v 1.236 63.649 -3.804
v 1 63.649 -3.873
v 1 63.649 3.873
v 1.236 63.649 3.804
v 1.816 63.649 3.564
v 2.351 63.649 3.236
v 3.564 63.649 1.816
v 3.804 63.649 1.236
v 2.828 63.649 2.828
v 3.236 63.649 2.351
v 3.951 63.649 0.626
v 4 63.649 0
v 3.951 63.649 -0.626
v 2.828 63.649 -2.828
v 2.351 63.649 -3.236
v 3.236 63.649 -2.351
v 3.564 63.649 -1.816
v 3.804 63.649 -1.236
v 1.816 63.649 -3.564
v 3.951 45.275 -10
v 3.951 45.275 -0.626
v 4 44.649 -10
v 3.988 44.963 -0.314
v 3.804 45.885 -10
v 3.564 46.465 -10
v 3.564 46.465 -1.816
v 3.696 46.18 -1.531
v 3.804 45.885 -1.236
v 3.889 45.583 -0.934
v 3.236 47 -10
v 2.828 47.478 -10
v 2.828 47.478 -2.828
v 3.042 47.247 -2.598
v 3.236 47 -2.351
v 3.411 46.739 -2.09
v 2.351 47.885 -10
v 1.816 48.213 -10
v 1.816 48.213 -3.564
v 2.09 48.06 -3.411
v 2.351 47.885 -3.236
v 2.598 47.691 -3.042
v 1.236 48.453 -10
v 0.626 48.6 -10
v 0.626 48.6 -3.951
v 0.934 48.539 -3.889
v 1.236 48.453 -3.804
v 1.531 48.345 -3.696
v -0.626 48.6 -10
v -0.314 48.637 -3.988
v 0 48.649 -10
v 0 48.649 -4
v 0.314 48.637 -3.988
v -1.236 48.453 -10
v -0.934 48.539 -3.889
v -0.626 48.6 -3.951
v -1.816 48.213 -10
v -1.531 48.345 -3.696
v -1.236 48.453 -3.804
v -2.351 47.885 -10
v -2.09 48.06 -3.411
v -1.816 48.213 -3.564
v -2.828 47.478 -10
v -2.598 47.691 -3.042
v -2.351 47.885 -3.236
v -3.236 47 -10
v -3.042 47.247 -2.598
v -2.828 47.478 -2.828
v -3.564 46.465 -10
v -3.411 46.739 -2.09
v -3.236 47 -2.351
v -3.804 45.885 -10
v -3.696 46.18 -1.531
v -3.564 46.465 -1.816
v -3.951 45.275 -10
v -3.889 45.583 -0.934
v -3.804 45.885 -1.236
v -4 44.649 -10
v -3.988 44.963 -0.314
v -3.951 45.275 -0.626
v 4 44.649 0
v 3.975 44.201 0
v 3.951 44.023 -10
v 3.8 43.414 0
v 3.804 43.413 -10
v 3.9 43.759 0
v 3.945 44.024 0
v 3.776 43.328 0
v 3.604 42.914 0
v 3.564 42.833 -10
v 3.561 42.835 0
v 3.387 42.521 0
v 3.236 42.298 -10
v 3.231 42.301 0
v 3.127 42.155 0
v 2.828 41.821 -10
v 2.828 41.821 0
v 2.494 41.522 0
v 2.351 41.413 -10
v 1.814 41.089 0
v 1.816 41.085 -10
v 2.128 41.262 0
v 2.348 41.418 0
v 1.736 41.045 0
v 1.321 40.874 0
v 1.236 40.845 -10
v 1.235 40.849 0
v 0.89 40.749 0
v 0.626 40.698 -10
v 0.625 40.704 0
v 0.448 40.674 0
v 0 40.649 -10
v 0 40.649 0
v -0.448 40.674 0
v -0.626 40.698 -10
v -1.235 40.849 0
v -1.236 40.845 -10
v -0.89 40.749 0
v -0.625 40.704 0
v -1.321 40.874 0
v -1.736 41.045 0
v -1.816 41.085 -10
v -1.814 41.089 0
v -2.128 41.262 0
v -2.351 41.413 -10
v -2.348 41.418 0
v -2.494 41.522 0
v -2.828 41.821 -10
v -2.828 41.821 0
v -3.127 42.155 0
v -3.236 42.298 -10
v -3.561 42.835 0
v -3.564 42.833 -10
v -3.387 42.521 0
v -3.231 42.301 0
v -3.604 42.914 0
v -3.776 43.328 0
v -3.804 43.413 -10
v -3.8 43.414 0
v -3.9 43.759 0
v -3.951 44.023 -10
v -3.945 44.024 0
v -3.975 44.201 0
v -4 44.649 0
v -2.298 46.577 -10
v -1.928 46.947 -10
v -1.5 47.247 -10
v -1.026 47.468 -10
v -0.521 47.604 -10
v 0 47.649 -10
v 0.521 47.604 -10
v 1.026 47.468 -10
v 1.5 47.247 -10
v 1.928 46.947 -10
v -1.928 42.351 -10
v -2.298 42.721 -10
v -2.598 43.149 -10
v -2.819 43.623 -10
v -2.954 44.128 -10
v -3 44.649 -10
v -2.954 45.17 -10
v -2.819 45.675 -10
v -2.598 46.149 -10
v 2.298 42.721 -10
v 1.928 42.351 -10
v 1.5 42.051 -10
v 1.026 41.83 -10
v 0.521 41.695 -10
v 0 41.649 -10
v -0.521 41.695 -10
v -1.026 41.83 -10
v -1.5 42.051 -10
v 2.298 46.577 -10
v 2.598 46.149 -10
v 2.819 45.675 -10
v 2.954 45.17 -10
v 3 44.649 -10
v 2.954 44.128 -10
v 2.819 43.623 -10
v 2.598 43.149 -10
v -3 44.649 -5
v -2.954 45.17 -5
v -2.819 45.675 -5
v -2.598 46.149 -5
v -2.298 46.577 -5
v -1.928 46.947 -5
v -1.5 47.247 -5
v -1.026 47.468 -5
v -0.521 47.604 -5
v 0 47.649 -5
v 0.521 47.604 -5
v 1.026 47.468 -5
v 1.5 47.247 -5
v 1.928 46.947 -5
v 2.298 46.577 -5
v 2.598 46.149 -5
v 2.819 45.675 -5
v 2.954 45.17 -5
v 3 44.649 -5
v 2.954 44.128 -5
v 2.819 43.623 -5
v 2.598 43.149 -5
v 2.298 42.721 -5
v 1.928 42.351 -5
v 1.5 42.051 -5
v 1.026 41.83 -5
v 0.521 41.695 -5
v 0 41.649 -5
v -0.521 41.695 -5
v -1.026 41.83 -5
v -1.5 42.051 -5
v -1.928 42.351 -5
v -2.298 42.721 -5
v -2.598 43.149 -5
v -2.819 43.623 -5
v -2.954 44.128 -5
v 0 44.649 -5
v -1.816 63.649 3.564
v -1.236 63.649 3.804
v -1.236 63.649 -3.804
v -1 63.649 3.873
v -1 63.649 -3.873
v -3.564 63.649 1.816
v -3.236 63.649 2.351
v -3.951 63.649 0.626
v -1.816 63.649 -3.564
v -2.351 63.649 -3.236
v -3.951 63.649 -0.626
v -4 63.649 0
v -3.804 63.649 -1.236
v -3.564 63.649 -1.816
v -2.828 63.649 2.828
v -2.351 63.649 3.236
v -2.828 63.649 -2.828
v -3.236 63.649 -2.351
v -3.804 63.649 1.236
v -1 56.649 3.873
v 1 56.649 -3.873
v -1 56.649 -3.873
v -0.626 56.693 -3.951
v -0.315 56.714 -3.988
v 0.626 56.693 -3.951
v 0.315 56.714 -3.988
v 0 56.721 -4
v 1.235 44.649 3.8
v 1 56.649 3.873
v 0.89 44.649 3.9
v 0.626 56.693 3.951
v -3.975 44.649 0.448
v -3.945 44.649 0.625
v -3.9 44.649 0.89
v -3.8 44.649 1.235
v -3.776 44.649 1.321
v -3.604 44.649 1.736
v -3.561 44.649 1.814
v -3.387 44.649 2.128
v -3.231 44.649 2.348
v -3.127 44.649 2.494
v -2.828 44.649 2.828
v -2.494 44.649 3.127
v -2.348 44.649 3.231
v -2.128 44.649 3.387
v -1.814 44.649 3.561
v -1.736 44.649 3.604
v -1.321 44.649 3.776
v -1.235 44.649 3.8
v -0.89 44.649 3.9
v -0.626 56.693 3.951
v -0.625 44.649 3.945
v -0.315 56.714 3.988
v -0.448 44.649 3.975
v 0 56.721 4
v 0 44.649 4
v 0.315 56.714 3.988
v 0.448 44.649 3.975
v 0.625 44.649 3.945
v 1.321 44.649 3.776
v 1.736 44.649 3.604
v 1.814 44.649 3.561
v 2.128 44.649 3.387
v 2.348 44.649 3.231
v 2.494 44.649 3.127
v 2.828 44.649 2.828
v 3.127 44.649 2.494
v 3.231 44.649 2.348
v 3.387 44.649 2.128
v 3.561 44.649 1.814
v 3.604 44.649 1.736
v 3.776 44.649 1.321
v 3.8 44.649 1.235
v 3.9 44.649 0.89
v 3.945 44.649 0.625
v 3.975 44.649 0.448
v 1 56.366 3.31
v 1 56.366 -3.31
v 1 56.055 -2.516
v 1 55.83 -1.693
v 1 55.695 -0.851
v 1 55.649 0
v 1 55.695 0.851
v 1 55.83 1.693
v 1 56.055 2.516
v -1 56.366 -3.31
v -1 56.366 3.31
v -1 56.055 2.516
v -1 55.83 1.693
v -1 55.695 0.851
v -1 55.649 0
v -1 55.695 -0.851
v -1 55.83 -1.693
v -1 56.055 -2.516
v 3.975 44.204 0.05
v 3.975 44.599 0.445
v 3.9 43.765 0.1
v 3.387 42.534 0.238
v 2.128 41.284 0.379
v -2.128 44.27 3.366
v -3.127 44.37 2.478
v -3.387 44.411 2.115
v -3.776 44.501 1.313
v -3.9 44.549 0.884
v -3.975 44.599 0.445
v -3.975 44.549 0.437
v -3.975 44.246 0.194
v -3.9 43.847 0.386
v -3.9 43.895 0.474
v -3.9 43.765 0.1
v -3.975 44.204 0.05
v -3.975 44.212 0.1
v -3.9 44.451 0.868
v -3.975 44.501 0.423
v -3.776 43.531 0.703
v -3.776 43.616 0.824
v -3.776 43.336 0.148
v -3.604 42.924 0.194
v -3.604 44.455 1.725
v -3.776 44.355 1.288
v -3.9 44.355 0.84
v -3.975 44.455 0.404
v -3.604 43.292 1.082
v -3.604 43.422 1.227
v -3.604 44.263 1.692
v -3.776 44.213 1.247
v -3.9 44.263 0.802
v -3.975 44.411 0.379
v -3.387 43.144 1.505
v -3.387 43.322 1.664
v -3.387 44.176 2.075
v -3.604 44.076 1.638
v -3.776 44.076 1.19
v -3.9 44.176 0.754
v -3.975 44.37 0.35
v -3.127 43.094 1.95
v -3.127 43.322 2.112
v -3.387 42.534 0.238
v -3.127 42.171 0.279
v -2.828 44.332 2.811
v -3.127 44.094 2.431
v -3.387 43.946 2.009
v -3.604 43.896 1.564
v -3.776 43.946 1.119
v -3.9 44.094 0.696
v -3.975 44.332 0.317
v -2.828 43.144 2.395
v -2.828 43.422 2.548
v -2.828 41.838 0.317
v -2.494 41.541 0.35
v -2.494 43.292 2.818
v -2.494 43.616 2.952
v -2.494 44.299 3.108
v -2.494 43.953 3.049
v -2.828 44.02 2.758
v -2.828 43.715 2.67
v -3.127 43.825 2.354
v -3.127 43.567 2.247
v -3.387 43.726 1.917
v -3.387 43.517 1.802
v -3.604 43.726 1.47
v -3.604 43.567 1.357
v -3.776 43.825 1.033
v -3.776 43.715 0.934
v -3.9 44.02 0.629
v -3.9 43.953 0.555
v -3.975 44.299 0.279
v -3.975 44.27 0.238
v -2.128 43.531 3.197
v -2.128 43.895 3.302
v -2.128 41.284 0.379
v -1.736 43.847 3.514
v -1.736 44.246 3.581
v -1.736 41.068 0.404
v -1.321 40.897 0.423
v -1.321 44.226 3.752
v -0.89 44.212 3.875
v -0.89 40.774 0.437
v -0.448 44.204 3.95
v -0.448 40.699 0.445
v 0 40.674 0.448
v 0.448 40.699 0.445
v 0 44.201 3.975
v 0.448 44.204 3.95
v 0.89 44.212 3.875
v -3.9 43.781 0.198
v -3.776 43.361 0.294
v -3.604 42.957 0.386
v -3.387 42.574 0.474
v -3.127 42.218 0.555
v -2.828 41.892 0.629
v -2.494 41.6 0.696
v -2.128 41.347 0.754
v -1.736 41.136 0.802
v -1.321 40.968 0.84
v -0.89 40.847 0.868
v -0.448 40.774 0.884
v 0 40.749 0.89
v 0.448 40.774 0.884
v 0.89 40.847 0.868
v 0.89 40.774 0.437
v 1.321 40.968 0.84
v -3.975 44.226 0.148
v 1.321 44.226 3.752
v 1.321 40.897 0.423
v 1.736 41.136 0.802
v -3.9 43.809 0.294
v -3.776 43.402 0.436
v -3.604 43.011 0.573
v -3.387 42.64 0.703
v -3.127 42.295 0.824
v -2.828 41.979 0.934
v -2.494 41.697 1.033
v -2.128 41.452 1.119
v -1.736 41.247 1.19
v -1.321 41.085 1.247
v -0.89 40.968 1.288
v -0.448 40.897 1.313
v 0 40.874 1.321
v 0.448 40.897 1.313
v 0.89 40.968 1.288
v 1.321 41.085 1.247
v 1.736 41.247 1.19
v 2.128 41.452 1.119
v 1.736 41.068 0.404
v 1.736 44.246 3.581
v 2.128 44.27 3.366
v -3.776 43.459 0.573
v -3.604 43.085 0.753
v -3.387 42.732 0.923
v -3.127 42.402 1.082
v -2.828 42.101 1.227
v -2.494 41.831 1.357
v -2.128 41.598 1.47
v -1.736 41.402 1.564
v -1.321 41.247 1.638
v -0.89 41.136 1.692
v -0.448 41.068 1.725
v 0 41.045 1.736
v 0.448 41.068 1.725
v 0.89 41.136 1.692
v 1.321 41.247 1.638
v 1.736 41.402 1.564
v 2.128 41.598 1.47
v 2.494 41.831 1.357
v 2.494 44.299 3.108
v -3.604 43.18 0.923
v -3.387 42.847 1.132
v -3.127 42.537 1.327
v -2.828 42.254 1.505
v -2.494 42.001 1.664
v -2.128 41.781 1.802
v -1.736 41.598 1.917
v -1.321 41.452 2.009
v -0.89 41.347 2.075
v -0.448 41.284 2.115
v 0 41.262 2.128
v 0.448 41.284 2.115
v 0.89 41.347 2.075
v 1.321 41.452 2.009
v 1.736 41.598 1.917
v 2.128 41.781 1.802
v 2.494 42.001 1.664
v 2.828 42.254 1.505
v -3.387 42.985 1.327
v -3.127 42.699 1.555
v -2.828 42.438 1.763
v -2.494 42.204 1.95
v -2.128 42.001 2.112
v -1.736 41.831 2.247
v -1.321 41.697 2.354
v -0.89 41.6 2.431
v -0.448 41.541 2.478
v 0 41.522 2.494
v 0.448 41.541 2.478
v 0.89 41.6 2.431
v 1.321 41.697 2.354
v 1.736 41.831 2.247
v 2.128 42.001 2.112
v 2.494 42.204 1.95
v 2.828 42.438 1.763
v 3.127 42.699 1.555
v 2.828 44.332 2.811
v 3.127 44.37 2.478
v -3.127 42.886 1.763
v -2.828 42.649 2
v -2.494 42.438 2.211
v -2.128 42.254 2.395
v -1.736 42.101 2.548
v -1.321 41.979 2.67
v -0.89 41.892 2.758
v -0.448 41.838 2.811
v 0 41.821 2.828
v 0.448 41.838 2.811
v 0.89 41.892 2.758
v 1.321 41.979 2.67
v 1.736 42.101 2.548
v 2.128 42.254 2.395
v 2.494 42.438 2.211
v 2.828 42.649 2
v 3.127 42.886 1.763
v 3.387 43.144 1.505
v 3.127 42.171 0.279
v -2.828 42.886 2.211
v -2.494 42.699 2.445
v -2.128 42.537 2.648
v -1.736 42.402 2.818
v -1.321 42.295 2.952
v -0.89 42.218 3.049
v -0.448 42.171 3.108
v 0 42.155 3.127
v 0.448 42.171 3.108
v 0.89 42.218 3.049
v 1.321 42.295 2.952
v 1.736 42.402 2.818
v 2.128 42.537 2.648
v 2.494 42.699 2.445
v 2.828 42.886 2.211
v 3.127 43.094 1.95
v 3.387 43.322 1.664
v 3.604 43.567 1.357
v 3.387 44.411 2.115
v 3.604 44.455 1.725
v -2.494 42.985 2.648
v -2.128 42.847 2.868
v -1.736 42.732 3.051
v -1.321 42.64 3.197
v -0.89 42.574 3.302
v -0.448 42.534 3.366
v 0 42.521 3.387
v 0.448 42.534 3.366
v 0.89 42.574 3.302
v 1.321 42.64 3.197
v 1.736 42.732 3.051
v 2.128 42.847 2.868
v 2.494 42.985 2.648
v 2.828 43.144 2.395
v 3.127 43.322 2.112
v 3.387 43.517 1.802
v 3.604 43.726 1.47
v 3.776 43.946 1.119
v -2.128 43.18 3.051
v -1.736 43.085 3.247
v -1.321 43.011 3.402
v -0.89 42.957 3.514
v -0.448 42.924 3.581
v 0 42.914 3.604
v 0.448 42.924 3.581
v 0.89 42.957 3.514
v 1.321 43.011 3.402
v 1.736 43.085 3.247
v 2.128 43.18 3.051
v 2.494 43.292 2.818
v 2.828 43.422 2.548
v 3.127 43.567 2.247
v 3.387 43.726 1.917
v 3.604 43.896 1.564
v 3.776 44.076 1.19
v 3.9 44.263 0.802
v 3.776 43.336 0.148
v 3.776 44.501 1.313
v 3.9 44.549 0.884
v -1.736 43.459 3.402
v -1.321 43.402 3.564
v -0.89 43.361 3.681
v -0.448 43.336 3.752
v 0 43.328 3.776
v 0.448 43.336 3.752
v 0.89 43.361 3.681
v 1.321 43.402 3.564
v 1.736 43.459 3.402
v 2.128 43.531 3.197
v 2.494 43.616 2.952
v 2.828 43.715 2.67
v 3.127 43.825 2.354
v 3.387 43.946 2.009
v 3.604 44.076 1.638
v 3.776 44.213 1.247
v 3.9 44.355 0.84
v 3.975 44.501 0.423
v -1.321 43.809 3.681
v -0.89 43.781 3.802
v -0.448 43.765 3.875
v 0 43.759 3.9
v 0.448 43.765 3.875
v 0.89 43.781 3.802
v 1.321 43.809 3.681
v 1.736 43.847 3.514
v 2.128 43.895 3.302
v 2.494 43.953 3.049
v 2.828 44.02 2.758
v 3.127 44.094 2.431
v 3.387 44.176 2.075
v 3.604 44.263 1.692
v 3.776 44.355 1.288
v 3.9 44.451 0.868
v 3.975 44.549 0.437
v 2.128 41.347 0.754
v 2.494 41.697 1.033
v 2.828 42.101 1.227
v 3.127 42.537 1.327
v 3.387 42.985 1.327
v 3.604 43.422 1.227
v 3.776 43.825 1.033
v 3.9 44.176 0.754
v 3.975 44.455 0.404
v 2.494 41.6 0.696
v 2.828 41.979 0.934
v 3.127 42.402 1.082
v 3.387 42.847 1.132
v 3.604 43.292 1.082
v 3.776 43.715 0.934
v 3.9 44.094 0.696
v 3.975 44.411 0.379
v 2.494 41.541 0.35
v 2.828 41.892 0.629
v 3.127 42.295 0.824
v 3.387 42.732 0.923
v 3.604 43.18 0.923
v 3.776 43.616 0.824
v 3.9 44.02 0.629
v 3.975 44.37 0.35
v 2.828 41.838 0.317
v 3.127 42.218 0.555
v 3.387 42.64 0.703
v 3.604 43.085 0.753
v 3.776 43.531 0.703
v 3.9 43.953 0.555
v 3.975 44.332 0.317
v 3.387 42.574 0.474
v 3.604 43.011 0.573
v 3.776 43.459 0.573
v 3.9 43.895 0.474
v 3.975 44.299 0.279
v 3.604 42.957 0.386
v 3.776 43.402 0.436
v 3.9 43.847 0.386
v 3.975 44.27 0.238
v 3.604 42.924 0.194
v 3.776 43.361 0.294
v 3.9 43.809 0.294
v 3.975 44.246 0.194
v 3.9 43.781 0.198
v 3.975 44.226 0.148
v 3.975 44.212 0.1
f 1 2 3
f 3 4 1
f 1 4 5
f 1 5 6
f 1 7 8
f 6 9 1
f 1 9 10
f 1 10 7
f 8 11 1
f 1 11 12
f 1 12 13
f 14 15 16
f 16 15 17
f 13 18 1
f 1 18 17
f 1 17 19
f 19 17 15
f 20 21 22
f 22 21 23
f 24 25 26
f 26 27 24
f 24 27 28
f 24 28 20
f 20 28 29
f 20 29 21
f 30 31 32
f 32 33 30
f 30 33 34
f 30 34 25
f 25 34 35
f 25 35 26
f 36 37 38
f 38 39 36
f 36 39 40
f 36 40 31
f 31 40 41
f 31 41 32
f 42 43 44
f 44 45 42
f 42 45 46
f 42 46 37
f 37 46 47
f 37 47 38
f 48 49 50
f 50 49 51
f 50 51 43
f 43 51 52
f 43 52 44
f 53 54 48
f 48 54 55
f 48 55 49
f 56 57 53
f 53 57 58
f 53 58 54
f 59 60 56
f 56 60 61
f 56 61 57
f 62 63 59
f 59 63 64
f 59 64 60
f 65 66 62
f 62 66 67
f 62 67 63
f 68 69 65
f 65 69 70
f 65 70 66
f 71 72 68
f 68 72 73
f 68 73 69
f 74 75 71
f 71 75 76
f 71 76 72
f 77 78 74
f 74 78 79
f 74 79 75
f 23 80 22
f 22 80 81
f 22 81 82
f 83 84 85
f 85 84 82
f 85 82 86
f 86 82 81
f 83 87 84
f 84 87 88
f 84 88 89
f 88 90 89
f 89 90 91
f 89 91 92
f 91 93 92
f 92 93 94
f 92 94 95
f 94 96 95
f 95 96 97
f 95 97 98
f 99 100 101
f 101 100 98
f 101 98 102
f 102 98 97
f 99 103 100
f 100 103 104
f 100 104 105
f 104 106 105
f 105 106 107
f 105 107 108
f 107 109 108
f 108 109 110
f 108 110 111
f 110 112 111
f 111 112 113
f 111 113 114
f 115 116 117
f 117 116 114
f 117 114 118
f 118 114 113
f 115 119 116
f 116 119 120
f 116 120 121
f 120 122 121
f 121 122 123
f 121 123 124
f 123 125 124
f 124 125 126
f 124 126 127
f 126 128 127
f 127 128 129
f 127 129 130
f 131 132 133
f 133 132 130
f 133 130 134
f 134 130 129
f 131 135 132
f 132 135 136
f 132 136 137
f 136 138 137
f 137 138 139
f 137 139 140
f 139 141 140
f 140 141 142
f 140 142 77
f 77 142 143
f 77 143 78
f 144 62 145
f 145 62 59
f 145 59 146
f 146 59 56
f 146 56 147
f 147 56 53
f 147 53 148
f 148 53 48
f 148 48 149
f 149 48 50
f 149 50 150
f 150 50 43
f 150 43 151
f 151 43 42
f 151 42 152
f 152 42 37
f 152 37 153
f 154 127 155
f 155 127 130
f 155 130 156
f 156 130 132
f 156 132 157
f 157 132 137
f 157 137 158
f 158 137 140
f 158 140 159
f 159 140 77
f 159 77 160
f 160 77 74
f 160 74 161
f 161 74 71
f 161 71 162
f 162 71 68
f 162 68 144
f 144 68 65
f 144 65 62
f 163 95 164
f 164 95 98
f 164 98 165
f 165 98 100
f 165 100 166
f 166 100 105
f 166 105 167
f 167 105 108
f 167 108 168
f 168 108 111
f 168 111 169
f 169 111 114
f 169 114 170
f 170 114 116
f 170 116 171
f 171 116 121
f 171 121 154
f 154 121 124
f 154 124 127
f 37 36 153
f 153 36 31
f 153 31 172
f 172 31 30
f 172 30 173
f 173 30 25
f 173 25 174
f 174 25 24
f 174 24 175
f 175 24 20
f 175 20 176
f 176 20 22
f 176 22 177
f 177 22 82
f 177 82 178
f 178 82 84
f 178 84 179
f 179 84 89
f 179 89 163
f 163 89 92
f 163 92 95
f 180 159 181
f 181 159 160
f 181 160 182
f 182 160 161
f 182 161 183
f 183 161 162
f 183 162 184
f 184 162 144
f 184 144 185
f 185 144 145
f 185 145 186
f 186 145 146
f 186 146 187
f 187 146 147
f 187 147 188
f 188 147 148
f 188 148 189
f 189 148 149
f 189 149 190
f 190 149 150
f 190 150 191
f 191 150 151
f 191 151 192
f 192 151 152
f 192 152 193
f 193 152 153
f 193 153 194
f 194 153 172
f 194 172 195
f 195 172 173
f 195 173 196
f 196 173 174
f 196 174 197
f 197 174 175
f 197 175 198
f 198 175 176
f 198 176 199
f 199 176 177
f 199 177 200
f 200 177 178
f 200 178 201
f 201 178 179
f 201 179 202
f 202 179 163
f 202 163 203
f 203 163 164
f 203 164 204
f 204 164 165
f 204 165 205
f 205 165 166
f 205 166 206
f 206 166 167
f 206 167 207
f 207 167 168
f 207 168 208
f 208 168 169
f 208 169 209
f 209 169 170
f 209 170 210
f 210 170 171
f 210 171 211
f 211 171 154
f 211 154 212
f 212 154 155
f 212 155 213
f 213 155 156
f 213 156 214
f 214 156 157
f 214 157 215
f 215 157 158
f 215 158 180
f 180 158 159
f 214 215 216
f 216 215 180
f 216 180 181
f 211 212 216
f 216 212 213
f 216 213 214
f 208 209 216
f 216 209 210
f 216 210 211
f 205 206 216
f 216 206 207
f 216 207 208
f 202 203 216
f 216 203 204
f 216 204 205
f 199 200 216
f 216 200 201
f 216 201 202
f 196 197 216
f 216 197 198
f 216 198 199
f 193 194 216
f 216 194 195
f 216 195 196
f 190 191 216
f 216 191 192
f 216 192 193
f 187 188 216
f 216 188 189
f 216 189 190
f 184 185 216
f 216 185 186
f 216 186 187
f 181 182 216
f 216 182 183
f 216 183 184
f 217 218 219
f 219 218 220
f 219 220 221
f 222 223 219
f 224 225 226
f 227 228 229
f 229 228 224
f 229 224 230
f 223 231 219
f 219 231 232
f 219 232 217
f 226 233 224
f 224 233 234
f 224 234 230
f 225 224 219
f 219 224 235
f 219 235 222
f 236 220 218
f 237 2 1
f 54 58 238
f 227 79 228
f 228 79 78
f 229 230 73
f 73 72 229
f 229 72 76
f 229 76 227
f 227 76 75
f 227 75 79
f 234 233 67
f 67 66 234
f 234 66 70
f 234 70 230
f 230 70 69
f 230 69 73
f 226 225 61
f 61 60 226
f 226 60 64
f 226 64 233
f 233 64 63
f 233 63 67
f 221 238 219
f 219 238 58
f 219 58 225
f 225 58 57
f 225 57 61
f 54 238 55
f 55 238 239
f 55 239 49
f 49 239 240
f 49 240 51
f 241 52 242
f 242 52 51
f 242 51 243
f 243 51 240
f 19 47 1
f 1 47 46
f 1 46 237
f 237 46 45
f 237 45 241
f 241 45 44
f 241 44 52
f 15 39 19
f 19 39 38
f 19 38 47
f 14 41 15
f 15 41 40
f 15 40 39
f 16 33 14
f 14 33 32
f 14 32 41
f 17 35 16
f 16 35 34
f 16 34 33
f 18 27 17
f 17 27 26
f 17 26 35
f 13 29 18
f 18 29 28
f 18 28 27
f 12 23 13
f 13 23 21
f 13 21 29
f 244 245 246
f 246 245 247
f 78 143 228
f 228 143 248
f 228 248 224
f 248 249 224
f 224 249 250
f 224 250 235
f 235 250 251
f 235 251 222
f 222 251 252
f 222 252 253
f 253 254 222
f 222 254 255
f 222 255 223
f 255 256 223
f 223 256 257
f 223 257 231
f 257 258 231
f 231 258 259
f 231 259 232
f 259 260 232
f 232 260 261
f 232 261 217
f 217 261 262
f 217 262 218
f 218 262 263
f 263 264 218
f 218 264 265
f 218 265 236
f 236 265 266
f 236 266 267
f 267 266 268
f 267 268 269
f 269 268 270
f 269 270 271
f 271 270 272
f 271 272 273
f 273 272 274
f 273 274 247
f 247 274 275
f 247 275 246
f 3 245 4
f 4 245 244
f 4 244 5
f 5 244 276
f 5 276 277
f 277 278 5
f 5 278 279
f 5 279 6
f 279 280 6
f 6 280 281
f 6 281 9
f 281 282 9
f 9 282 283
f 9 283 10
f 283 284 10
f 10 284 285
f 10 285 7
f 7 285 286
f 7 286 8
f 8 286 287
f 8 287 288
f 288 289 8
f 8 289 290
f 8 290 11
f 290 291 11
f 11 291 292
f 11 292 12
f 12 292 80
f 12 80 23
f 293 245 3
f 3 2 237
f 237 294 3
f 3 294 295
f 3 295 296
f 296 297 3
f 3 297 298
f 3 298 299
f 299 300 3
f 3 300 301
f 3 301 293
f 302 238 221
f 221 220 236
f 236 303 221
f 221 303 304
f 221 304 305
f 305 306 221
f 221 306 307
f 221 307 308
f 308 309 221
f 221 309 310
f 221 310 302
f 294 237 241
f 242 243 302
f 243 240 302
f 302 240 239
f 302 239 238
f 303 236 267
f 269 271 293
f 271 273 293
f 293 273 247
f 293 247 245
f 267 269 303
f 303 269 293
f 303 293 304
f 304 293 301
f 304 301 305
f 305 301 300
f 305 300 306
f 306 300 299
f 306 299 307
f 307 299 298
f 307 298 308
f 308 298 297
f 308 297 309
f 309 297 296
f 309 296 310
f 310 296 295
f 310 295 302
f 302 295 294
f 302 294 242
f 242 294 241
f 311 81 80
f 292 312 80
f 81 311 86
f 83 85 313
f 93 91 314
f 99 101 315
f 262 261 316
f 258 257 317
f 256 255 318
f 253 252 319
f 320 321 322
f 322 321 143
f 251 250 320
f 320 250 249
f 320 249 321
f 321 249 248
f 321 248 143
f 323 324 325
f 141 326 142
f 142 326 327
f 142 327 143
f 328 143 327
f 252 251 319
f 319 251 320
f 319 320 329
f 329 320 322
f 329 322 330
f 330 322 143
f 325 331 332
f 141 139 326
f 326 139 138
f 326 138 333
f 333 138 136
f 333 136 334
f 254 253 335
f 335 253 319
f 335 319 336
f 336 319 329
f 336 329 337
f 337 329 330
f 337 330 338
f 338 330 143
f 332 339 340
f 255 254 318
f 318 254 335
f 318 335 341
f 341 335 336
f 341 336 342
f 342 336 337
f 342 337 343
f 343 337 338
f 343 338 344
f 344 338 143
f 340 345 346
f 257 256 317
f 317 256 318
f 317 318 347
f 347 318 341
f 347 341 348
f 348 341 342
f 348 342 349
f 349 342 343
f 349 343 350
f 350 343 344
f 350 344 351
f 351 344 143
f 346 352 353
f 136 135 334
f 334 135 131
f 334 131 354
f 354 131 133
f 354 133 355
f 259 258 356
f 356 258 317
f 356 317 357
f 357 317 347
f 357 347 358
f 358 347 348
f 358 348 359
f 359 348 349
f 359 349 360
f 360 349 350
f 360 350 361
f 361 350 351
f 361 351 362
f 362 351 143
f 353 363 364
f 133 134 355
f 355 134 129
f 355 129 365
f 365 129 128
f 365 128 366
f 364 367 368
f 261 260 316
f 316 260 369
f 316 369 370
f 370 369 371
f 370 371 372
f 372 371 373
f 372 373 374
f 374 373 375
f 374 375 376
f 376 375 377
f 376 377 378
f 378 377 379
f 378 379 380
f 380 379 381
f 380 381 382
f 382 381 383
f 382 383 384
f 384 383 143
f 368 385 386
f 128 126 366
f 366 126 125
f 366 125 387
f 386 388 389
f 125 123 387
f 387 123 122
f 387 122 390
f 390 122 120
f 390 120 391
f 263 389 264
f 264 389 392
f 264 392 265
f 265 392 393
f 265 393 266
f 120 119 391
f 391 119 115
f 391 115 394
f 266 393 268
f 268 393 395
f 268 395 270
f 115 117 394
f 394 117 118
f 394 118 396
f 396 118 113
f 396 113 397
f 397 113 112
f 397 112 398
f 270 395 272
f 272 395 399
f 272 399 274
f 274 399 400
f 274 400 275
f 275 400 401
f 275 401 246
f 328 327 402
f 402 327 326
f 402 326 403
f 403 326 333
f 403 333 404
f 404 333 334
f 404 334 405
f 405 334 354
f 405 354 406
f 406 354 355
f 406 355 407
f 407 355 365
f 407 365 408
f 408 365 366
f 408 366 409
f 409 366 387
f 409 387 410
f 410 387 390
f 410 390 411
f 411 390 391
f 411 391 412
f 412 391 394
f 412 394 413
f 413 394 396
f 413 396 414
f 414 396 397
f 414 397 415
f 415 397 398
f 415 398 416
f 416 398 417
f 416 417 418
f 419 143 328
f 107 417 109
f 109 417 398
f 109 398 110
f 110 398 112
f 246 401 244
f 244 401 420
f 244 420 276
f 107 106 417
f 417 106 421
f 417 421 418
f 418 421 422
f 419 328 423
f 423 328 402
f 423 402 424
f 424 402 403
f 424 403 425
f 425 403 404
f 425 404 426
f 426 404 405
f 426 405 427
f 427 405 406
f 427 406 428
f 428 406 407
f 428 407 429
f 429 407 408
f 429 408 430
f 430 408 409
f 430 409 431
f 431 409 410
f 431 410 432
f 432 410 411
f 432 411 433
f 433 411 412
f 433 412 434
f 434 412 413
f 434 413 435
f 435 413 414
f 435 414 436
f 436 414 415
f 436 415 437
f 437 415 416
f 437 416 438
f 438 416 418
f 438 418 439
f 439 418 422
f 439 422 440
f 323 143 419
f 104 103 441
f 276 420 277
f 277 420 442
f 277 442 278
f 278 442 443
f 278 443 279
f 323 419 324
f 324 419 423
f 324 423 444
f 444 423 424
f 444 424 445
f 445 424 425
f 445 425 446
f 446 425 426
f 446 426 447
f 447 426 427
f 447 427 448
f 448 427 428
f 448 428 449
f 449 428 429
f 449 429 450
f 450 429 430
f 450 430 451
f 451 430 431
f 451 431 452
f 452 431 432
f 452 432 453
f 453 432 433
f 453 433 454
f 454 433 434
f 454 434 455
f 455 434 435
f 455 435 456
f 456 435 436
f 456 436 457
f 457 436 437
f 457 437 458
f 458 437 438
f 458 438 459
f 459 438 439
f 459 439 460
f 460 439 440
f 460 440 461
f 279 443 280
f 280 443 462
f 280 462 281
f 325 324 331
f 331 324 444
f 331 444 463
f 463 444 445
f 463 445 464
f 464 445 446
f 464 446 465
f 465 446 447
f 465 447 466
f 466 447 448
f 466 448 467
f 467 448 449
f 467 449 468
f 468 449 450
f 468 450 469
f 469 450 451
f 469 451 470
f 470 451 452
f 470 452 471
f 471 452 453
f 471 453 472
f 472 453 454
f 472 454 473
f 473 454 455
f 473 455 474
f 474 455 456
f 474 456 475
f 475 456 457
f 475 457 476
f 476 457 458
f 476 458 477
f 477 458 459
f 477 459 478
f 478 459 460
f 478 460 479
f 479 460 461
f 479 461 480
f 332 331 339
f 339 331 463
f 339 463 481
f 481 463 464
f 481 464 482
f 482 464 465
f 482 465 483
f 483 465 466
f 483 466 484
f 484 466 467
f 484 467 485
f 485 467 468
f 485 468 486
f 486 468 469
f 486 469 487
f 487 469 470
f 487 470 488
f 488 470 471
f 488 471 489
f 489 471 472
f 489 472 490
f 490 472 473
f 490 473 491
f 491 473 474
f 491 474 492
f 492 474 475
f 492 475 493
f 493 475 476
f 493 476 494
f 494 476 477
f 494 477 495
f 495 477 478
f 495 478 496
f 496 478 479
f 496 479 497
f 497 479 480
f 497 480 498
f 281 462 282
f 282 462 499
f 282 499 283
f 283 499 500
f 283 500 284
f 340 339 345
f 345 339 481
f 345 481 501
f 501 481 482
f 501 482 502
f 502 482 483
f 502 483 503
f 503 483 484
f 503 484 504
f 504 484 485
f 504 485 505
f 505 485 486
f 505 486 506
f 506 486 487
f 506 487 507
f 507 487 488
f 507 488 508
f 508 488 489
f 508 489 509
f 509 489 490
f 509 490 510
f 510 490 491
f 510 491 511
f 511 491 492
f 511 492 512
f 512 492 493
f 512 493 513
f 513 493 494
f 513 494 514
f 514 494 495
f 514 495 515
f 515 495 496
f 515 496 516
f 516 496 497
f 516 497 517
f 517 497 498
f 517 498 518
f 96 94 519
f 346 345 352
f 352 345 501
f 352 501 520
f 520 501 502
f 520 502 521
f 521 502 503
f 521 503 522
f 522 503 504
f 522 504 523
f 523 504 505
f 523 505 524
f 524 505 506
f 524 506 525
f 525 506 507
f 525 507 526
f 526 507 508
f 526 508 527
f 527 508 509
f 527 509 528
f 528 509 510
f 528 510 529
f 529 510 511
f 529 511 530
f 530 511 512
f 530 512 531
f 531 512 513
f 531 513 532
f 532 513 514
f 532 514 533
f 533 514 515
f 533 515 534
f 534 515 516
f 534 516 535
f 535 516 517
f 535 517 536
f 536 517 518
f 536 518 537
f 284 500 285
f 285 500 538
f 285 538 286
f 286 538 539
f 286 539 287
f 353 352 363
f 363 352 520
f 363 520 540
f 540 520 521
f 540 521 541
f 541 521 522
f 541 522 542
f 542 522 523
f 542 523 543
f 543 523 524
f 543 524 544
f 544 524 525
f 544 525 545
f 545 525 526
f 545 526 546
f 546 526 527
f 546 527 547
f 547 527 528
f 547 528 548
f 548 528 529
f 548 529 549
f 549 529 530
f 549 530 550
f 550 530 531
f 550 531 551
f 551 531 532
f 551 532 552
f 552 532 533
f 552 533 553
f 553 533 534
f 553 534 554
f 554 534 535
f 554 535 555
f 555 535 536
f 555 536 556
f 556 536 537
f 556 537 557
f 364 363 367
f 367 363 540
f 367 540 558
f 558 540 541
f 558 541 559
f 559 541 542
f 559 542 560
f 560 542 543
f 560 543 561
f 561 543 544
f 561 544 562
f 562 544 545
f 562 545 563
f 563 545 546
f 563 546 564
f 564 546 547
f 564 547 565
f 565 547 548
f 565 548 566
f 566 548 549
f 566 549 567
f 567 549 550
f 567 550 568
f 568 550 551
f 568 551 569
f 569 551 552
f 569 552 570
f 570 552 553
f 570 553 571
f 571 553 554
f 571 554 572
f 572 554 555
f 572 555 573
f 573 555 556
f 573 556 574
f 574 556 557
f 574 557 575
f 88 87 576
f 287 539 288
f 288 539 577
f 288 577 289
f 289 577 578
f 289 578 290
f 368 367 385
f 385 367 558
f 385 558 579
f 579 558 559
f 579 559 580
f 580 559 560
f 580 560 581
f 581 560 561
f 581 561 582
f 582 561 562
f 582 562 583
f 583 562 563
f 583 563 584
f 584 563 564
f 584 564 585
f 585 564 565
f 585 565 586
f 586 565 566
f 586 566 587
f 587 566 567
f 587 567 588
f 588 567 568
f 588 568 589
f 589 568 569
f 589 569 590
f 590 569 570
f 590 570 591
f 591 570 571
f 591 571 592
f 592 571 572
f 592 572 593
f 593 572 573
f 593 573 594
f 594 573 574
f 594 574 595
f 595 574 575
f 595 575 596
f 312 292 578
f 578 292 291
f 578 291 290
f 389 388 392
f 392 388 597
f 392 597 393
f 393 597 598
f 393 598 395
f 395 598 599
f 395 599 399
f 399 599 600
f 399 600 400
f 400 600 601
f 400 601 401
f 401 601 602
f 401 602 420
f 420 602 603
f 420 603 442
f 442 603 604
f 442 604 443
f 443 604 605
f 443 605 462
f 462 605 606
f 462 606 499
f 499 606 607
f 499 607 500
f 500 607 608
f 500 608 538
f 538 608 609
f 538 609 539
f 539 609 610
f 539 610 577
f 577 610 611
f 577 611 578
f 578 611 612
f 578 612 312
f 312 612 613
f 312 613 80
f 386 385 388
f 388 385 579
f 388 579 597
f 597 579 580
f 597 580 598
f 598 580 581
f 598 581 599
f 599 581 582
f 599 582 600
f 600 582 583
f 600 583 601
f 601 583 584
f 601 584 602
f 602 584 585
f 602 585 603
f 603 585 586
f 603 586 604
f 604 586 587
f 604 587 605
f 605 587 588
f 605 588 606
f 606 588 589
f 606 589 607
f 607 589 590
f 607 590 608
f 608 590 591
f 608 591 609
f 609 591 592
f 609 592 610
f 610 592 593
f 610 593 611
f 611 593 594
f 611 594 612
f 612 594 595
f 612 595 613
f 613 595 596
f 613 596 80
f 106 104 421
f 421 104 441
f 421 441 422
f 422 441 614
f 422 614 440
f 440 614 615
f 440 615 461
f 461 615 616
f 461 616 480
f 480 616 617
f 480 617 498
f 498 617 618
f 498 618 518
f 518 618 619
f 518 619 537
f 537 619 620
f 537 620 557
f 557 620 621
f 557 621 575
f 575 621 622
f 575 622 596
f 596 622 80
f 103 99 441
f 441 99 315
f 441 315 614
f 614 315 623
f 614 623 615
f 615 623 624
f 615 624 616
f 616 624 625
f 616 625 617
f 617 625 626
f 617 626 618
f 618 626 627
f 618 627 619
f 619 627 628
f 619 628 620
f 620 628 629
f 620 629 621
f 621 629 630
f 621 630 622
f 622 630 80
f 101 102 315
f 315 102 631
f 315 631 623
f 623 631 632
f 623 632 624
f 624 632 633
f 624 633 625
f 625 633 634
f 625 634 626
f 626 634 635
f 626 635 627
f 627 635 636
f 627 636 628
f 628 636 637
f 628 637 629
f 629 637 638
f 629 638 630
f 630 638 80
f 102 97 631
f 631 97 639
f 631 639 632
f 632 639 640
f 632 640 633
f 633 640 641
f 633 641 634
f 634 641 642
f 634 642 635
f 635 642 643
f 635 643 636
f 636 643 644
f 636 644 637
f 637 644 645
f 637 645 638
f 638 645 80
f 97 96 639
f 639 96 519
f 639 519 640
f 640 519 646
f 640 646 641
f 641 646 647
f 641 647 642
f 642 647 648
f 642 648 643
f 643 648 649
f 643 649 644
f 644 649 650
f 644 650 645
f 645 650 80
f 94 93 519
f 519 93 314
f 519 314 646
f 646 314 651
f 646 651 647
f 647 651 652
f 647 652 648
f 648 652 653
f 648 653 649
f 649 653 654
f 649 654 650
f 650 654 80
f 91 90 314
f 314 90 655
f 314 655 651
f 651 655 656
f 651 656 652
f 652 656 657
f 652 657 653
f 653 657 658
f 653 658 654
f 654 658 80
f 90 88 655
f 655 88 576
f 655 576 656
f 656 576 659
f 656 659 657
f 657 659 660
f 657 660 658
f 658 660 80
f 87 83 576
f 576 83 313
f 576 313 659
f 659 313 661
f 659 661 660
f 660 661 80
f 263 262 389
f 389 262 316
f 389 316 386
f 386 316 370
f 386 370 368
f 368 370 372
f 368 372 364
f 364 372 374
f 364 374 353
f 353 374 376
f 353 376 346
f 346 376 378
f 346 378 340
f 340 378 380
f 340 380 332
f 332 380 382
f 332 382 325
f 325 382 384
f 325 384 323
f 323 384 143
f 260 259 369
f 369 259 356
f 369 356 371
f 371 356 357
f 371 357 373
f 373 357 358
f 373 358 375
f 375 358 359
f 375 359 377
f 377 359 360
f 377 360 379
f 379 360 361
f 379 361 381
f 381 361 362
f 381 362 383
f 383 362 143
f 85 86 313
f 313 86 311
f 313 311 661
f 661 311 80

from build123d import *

# Parameters (mm, degrees)
CROQUIS1_R              = 4
SALIENTE_EXTRUIR1_DEPTH = 10
CROQUIS3_R              = 3
CORTAR_EXTRUIR2_DEPTH   = 5
CROQUIS4_W              = 4
CROQUIS4_H              = 19
CROQUIS5_W              = 2
CROQUIS5_H              = 8


with BuildPart() as part:
    # Croquis1 → Saliente-Extruir1 (new body)
    with BuildSketch(Plane.XY):
        with Locations((0, 44.649122807)):
            Circle(CROQUIS1_R)
    extrude(amount=-SALIENTE_EXTRUIR1_DEPTH)

    # Croquis3 → Cortar-Extruir2 (cut)
    with BuildSketch(Plane(origin=(0, 0, -10), x_dir=(-1, 0, 0), z_dir=(0, 0, -1))):
        with Locations((0, 44.649122807)):
            Circle(CROQUIS3_R)
    extrude(amount=-CORTAR_EXTRUIR2_DEPTH, mode=Mode.SUBTRACT)

    # Croquis4 → Revolución1 (revolve)
    with BuildSketch(Plane(origin=(0, 0, 0), x_dir=(0, 0, -1), z_dir=(1, 0, 0)), mode=Mode.PRIVATE) as revoluci_n1_sk:
        with Locations((-2, 54.149122807)):
            Rectangle(CROQUIS4_W, CROQUIS4_H)
    revolve(revoluci_n1_sk.sketch.rotate(Axis((0, 44.649122807, 0), (0, 1, 0)), 180), axis=Axis((0, 44.649122807, 0), (0, 1, 0)))

    # Croquis5 → Cortar-Revolución1 (revolve, cut)
    with BuildSketch(Plane(origin=(0, 63.649122807, 0), x_dir=(1, 0, 0), z_dir=(0, 1, 0))):
        with Locations((0, 4)):
            Rectangle(CROQUIS5_W, CROQUIS5_H)
    revolve(axis=Axis((1, 63.649122807, 0), (-1, 0, 0)), mode=Mode.SUBTRACT)

    # Croquis6 → Revolución3 (revolve)
    with BuildSketch(Plane.XZ.offset(-44.649122807)):
        with BuildLine():
            Line((-4, 0), (4, 0))
            ThreePointArc((4, 0), (0, 4), (-4, 0))
        make_face()
    revolve(axis=Axis((-4, 44.649122807, 0), (1, 0, 0)))


solid = part.part
